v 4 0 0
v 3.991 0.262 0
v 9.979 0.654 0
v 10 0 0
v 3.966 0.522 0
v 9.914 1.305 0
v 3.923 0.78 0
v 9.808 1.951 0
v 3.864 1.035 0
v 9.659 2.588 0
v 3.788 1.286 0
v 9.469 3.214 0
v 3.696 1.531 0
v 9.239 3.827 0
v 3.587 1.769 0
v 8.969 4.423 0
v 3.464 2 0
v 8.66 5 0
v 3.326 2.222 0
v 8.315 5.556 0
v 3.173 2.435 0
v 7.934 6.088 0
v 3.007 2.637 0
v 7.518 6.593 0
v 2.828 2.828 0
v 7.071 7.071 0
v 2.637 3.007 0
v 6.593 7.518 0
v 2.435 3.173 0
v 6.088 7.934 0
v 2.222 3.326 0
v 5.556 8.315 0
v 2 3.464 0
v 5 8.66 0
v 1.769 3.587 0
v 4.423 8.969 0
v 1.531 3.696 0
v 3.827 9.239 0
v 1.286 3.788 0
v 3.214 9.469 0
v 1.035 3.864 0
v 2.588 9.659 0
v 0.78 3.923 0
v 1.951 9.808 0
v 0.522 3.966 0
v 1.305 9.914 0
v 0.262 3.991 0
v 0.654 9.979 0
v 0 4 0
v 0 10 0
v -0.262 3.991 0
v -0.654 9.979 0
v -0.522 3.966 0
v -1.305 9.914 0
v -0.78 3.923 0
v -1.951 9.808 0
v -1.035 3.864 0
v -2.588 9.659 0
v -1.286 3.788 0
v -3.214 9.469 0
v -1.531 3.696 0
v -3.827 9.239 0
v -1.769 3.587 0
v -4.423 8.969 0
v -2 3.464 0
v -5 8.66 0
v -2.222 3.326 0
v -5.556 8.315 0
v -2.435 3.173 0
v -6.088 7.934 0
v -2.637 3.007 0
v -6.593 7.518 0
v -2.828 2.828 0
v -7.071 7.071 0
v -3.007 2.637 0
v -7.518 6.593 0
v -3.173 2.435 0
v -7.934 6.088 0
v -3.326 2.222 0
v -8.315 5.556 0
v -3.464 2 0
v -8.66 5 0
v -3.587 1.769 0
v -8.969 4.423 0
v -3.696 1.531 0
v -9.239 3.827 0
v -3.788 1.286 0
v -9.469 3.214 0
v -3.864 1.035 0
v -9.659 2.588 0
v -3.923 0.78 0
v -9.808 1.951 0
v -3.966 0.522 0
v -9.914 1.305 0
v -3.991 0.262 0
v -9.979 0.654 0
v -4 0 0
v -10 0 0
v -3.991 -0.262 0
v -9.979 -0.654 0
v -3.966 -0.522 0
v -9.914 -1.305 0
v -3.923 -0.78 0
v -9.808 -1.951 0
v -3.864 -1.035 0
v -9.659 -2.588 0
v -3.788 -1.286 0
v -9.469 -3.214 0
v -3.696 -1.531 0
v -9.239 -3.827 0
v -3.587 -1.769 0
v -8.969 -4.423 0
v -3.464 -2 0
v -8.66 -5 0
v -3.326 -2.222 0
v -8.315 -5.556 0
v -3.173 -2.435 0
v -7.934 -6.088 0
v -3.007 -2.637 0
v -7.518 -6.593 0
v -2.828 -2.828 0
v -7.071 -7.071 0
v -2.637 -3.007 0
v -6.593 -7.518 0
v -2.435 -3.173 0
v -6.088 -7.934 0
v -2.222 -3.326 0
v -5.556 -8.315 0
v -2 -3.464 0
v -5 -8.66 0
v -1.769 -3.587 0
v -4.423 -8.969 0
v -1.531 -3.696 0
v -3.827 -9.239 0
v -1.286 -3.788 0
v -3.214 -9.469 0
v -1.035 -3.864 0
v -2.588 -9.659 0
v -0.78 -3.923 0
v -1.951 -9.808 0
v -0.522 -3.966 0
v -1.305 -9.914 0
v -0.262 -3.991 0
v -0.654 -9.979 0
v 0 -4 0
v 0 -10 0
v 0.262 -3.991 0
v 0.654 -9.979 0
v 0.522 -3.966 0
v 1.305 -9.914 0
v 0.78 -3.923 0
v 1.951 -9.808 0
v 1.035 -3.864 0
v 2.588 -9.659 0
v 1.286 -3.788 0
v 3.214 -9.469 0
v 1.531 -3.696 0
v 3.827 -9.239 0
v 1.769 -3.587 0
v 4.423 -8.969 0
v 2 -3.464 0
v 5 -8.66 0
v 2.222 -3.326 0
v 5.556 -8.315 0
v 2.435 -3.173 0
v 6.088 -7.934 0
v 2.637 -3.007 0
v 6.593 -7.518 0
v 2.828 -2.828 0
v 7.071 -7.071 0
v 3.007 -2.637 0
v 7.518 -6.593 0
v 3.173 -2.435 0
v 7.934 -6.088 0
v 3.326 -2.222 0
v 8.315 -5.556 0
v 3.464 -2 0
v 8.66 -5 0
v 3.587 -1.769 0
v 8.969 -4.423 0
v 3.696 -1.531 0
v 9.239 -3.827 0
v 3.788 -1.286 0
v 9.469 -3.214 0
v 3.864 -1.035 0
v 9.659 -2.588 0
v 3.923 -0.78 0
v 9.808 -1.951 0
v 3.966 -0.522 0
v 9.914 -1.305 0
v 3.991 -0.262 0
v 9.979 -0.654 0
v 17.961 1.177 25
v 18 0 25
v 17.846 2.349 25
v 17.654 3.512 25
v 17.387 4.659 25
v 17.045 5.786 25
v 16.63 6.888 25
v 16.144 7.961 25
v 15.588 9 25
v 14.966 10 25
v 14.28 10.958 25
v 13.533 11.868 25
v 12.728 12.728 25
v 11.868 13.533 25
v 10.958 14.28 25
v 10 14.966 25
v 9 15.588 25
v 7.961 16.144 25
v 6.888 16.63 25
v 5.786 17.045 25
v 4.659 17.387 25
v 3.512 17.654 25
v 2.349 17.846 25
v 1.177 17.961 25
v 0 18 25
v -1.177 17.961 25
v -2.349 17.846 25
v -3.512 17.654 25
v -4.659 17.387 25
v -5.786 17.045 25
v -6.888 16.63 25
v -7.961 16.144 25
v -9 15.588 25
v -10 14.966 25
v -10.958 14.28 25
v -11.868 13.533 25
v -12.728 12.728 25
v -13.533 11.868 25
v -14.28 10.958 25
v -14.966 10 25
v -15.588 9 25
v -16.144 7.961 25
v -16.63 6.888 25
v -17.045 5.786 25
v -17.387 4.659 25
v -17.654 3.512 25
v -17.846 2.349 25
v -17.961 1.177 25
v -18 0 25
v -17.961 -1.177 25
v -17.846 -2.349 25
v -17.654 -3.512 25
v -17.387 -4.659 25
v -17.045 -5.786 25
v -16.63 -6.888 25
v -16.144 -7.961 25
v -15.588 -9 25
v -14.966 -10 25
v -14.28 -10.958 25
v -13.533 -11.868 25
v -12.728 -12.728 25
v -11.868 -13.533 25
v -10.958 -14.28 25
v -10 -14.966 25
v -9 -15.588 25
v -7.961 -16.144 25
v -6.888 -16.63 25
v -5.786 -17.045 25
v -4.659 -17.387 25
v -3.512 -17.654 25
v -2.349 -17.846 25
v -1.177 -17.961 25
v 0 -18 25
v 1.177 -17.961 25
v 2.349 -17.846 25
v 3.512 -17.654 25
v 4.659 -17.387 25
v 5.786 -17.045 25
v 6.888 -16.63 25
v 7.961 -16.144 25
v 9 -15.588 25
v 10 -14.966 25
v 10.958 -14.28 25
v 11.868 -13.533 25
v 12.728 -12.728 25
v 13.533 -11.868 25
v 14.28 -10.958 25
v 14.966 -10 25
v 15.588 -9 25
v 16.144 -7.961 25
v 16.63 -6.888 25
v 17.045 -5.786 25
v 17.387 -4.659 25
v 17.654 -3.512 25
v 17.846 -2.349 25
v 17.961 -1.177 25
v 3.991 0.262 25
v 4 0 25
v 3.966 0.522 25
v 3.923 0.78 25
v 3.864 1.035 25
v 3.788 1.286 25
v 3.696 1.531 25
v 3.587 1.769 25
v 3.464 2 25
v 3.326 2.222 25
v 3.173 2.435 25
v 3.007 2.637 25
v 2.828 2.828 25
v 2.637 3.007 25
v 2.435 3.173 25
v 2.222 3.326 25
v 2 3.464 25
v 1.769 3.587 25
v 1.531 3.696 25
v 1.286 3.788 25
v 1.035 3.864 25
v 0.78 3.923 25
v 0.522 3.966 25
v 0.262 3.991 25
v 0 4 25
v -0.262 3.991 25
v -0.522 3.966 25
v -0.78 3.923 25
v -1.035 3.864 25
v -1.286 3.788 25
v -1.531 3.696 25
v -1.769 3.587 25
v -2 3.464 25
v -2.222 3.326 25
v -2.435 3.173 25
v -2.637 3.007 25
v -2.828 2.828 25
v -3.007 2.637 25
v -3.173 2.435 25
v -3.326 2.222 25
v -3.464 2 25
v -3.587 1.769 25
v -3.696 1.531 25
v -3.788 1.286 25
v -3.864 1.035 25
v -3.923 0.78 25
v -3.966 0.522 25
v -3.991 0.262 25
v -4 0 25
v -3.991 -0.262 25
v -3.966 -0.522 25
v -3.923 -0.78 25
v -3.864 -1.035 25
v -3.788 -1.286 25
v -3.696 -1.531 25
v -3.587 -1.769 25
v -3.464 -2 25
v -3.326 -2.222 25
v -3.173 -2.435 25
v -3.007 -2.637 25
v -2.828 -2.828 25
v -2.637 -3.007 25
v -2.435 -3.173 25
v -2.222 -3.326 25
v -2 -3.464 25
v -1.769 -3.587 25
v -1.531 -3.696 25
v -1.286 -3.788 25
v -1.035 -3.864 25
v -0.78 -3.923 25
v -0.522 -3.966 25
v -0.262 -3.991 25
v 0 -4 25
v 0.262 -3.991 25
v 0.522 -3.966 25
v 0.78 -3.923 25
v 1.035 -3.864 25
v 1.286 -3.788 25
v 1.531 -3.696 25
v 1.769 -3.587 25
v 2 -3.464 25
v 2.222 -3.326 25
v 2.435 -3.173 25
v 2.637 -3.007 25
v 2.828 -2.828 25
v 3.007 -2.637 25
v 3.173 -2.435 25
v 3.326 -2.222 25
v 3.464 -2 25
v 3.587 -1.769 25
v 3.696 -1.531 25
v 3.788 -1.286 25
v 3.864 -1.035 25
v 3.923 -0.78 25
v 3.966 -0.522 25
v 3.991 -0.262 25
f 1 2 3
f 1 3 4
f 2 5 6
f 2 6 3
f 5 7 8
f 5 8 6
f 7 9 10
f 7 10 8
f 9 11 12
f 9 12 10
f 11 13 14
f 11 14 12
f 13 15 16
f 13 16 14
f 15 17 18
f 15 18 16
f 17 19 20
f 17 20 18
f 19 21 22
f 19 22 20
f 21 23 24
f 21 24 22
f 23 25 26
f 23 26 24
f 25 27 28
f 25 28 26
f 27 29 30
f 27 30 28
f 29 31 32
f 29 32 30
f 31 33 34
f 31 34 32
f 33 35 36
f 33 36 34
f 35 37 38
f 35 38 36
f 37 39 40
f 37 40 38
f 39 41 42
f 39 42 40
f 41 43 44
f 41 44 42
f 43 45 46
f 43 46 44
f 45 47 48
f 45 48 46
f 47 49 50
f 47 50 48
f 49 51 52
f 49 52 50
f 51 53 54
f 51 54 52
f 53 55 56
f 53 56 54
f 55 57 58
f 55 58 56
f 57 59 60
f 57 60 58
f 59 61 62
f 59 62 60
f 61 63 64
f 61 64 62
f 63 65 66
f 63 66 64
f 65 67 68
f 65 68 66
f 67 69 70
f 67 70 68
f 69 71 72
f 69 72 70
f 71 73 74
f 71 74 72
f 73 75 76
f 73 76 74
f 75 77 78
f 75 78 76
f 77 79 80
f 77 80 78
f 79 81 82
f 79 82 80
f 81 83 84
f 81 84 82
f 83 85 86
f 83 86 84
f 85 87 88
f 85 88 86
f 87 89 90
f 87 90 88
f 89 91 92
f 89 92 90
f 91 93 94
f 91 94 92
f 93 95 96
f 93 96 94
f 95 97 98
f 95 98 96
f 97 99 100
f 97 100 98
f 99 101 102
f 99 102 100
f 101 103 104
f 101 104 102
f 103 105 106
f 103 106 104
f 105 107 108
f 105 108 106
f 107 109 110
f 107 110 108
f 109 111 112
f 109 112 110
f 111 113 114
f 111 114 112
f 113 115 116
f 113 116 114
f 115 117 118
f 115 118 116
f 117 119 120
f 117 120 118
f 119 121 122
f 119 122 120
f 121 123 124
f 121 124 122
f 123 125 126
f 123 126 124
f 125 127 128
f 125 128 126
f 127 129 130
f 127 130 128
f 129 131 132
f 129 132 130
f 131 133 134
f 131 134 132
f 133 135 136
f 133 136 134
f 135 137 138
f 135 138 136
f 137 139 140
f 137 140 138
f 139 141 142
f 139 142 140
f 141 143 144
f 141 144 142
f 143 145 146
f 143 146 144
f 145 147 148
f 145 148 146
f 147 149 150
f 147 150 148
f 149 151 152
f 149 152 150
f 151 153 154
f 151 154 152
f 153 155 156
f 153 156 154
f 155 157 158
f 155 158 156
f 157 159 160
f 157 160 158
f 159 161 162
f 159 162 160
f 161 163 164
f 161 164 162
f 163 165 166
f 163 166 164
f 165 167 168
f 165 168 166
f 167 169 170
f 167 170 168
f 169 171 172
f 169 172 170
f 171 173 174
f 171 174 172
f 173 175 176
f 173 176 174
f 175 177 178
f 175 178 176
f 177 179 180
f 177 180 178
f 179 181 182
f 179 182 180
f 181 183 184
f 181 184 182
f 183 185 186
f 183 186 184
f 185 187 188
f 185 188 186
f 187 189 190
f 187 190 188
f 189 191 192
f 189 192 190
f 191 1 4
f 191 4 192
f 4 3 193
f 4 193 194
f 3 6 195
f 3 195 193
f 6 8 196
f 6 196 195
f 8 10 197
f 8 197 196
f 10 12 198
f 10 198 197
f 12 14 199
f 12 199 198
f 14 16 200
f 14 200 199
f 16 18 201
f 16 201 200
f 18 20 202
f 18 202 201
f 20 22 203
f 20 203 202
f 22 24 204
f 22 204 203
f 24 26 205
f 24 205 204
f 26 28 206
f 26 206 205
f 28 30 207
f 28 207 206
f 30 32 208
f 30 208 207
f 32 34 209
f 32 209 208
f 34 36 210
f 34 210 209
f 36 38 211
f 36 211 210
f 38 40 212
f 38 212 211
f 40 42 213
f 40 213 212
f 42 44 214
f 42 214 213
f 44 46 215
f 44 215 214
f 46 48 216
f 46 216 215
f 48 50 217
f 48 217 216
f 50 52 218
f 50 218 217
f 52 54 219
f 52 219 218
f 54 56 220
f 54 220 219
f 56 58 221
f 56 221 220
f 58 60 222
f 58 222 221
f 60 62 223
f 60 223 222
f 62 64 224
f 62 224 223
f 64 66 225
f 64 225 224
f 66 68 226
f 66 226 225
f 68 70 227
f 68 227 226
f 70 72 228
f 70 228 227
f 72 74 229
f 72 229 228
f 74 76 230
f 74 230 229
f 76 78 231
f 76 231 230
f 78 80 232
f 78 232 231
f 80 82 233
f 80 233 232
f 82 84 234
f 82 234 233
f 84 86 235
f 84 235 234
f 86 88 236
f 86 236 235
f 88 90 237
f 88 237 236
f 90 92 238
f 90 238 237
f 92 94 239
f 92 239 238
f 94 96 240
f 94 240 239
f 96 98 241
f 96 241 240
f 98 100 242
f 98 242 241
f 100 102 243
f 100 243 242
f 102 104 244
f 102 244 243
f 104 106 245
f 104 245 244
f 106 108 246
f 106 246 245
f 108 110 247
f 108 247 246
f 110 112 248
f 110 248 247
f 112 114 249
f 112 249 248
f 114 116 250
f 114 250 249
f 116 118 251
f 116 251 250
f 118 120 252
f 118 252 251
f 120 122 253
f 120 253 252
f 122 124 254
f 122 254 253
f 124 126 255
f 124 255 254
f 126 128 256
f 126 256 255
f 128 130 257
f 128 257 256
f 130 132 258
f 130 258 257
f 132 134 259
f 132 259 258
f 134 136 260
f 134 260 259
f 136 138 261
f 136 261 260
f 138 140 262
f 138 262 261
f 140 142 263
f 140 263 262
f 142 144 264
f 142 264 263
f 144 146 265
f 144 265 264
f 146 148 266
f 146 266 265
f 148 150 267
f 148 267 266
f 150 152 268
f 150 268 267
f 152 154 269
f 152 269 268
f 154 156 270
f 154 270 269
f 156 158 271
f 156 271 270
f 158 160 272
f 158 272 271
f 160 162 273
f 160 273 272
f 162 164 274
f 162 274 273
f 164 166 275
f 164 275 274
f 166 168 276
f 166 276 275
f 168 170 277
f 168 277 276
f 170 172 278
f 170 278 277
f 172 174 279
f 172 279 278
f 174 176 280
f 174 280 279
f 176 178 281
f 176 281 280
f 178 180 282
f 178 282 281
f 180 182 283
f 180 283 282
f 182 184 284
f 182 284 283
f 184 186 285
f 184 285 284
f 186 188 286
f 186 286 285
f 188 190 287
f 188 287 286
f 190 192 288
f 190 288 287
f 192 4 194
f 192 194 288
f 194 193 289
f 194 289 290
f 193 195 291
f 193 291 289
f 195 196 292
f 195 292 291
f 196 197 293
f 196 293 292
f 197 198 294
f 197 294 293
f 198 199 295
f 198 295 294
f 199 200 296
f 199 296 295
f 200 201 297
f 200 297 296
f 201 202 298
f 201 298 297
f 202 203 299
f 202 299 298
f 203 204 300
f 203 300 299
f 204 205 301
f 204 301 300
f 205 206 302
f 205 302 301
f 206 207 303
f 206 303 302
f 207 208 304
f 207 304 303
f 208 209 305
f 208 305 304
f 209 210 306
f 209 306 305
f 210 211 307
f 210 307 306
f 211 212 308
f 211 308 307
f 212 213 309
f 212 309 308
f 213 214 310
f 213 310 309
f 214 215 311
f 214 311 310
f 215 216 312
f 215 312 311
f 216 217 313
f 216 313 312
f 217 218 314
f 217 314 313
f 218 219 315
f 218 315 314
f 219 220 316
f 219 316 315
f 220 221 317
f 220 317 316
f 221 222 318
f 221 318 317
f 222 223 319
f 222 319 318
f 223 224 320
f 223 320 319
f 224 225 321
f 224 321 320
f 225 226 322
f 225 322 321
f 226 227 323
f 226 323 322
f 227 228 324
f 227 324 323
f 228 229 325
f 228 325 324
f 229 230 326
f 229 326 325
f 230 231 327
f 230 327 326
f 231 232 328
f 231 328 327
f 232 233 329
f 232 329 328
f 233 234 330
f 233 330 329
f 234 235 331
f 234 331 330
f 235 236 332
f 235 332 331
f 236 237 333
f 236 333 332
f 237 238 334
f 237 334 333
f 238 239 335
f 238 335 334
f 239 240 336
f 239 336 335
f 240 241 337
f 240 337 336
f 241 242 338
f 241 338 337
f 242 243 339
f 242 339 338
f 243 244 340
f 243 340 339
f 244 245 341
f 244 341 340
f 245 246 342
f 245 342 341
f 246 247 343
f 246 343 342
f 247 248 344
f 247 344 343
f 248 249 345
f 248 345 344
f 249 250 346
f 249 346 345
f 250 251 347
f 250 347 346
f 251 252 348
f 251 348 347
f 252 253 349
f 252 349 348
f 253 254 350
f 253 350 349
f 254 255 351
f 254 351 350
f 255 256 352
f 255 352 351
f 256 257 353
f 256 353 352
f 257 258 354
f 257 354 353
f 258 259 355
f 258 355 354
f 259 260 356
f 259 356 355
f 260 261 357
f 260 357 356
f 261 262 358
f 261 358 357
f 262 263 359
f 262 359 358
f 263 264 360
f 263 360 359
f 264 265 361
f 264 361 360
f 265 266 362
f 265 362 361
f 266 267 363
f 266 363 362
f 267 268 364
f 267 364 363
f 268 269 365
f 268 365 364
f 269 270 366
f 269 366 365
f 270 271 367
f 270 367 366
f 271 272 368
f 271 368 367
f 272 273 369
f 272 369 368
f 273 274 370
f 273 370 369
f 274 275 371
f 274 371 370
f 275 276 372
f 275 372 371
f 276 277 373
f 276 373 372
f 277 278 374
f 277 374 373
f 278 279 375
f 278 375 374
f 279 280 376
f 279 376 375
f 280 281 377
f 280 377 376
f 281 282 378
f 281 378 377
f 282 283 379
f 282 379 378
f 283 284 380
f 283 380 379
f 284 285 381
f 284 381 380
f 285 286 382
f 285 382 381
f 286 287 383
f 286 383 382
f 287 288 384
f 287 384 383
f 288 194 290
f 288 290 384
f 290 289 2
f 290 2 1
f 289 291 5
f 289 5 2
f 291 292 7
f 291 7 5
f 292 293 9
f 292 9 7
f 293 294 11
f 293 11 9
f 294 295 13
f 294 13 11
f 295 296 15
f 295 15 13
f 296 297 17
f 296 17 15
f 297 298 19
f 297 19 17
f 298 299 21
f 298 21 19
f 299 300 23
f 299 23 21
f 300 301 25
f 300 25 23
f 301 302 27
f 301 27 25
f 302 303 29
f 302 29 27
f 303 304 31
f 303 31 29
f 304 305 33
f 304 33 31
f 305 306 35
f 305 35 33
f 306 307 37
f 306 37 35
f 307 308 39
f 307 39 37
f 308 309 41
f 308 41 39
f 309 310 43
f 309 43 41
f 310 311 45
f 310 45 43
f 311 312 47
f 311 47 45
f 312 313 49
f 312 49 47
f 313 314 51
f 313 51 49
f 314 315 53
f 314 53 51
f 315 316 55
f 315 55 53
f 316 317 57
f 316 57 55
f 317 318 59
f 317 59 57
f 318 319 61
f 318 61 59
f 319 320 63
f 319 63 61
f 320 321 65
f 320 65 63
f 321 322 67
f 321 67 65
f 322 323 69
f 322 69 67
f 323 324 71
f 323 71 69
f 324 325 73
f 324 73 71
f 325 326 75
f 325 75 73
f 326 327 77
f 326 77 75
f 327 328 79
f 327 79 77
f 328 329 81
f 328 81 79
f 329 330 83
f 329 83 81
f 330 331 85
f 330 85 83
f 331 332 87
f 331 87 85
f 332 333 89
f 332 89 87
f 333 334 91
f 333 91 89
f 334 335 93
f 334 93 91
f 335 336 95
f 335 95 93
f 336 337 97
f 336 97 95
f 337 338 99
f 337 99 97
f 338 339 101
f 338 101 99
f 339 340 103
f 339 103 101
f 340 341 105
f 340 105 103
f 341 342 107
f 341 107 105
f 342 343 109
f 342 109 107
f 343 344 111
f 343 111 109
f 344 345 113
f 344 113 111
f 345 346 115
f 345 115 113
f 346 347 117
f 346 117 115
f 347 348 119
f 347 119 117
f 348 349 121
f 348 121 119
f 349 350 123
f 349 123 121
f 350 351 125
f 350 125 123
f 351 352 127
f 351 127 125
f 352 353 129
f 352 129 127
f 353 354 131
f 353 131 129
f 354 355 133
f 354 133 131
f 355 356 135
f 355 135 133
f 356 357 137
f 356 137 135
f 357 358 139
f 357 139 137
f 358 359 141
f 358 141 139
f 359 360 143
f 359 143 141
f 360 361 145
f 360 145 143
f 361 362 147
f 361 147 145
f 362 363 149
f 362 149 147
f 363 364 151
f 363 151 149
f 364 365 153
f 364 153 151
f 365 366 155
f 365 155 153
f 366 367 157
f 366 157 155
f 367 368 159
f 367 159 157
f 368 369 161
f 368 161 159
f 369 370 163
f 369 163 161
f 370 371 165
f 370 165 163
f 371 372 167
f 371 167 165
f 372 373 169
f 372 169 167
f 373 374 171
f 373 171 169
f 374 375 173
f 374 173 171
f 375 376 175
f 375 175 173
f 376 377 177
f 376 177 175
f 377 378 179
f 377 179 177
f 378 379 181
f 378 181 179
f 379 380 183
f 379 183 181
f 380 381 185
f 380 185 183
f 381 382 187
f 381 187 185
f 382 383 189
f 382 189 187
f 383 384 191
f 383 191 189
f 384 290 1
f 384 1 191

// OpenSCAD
// Original MechIntel educational model. CC0-1.0. Units: mm.
// Not a standardized or load-rated component.
$fn=96;
// Section points: [radius, height], mm. Edit to change the profile.
section=[[4, 0], [10, 0], [18, 25], [4, 25]];
rotate_extrude($fn=96) polygon(points=section);
